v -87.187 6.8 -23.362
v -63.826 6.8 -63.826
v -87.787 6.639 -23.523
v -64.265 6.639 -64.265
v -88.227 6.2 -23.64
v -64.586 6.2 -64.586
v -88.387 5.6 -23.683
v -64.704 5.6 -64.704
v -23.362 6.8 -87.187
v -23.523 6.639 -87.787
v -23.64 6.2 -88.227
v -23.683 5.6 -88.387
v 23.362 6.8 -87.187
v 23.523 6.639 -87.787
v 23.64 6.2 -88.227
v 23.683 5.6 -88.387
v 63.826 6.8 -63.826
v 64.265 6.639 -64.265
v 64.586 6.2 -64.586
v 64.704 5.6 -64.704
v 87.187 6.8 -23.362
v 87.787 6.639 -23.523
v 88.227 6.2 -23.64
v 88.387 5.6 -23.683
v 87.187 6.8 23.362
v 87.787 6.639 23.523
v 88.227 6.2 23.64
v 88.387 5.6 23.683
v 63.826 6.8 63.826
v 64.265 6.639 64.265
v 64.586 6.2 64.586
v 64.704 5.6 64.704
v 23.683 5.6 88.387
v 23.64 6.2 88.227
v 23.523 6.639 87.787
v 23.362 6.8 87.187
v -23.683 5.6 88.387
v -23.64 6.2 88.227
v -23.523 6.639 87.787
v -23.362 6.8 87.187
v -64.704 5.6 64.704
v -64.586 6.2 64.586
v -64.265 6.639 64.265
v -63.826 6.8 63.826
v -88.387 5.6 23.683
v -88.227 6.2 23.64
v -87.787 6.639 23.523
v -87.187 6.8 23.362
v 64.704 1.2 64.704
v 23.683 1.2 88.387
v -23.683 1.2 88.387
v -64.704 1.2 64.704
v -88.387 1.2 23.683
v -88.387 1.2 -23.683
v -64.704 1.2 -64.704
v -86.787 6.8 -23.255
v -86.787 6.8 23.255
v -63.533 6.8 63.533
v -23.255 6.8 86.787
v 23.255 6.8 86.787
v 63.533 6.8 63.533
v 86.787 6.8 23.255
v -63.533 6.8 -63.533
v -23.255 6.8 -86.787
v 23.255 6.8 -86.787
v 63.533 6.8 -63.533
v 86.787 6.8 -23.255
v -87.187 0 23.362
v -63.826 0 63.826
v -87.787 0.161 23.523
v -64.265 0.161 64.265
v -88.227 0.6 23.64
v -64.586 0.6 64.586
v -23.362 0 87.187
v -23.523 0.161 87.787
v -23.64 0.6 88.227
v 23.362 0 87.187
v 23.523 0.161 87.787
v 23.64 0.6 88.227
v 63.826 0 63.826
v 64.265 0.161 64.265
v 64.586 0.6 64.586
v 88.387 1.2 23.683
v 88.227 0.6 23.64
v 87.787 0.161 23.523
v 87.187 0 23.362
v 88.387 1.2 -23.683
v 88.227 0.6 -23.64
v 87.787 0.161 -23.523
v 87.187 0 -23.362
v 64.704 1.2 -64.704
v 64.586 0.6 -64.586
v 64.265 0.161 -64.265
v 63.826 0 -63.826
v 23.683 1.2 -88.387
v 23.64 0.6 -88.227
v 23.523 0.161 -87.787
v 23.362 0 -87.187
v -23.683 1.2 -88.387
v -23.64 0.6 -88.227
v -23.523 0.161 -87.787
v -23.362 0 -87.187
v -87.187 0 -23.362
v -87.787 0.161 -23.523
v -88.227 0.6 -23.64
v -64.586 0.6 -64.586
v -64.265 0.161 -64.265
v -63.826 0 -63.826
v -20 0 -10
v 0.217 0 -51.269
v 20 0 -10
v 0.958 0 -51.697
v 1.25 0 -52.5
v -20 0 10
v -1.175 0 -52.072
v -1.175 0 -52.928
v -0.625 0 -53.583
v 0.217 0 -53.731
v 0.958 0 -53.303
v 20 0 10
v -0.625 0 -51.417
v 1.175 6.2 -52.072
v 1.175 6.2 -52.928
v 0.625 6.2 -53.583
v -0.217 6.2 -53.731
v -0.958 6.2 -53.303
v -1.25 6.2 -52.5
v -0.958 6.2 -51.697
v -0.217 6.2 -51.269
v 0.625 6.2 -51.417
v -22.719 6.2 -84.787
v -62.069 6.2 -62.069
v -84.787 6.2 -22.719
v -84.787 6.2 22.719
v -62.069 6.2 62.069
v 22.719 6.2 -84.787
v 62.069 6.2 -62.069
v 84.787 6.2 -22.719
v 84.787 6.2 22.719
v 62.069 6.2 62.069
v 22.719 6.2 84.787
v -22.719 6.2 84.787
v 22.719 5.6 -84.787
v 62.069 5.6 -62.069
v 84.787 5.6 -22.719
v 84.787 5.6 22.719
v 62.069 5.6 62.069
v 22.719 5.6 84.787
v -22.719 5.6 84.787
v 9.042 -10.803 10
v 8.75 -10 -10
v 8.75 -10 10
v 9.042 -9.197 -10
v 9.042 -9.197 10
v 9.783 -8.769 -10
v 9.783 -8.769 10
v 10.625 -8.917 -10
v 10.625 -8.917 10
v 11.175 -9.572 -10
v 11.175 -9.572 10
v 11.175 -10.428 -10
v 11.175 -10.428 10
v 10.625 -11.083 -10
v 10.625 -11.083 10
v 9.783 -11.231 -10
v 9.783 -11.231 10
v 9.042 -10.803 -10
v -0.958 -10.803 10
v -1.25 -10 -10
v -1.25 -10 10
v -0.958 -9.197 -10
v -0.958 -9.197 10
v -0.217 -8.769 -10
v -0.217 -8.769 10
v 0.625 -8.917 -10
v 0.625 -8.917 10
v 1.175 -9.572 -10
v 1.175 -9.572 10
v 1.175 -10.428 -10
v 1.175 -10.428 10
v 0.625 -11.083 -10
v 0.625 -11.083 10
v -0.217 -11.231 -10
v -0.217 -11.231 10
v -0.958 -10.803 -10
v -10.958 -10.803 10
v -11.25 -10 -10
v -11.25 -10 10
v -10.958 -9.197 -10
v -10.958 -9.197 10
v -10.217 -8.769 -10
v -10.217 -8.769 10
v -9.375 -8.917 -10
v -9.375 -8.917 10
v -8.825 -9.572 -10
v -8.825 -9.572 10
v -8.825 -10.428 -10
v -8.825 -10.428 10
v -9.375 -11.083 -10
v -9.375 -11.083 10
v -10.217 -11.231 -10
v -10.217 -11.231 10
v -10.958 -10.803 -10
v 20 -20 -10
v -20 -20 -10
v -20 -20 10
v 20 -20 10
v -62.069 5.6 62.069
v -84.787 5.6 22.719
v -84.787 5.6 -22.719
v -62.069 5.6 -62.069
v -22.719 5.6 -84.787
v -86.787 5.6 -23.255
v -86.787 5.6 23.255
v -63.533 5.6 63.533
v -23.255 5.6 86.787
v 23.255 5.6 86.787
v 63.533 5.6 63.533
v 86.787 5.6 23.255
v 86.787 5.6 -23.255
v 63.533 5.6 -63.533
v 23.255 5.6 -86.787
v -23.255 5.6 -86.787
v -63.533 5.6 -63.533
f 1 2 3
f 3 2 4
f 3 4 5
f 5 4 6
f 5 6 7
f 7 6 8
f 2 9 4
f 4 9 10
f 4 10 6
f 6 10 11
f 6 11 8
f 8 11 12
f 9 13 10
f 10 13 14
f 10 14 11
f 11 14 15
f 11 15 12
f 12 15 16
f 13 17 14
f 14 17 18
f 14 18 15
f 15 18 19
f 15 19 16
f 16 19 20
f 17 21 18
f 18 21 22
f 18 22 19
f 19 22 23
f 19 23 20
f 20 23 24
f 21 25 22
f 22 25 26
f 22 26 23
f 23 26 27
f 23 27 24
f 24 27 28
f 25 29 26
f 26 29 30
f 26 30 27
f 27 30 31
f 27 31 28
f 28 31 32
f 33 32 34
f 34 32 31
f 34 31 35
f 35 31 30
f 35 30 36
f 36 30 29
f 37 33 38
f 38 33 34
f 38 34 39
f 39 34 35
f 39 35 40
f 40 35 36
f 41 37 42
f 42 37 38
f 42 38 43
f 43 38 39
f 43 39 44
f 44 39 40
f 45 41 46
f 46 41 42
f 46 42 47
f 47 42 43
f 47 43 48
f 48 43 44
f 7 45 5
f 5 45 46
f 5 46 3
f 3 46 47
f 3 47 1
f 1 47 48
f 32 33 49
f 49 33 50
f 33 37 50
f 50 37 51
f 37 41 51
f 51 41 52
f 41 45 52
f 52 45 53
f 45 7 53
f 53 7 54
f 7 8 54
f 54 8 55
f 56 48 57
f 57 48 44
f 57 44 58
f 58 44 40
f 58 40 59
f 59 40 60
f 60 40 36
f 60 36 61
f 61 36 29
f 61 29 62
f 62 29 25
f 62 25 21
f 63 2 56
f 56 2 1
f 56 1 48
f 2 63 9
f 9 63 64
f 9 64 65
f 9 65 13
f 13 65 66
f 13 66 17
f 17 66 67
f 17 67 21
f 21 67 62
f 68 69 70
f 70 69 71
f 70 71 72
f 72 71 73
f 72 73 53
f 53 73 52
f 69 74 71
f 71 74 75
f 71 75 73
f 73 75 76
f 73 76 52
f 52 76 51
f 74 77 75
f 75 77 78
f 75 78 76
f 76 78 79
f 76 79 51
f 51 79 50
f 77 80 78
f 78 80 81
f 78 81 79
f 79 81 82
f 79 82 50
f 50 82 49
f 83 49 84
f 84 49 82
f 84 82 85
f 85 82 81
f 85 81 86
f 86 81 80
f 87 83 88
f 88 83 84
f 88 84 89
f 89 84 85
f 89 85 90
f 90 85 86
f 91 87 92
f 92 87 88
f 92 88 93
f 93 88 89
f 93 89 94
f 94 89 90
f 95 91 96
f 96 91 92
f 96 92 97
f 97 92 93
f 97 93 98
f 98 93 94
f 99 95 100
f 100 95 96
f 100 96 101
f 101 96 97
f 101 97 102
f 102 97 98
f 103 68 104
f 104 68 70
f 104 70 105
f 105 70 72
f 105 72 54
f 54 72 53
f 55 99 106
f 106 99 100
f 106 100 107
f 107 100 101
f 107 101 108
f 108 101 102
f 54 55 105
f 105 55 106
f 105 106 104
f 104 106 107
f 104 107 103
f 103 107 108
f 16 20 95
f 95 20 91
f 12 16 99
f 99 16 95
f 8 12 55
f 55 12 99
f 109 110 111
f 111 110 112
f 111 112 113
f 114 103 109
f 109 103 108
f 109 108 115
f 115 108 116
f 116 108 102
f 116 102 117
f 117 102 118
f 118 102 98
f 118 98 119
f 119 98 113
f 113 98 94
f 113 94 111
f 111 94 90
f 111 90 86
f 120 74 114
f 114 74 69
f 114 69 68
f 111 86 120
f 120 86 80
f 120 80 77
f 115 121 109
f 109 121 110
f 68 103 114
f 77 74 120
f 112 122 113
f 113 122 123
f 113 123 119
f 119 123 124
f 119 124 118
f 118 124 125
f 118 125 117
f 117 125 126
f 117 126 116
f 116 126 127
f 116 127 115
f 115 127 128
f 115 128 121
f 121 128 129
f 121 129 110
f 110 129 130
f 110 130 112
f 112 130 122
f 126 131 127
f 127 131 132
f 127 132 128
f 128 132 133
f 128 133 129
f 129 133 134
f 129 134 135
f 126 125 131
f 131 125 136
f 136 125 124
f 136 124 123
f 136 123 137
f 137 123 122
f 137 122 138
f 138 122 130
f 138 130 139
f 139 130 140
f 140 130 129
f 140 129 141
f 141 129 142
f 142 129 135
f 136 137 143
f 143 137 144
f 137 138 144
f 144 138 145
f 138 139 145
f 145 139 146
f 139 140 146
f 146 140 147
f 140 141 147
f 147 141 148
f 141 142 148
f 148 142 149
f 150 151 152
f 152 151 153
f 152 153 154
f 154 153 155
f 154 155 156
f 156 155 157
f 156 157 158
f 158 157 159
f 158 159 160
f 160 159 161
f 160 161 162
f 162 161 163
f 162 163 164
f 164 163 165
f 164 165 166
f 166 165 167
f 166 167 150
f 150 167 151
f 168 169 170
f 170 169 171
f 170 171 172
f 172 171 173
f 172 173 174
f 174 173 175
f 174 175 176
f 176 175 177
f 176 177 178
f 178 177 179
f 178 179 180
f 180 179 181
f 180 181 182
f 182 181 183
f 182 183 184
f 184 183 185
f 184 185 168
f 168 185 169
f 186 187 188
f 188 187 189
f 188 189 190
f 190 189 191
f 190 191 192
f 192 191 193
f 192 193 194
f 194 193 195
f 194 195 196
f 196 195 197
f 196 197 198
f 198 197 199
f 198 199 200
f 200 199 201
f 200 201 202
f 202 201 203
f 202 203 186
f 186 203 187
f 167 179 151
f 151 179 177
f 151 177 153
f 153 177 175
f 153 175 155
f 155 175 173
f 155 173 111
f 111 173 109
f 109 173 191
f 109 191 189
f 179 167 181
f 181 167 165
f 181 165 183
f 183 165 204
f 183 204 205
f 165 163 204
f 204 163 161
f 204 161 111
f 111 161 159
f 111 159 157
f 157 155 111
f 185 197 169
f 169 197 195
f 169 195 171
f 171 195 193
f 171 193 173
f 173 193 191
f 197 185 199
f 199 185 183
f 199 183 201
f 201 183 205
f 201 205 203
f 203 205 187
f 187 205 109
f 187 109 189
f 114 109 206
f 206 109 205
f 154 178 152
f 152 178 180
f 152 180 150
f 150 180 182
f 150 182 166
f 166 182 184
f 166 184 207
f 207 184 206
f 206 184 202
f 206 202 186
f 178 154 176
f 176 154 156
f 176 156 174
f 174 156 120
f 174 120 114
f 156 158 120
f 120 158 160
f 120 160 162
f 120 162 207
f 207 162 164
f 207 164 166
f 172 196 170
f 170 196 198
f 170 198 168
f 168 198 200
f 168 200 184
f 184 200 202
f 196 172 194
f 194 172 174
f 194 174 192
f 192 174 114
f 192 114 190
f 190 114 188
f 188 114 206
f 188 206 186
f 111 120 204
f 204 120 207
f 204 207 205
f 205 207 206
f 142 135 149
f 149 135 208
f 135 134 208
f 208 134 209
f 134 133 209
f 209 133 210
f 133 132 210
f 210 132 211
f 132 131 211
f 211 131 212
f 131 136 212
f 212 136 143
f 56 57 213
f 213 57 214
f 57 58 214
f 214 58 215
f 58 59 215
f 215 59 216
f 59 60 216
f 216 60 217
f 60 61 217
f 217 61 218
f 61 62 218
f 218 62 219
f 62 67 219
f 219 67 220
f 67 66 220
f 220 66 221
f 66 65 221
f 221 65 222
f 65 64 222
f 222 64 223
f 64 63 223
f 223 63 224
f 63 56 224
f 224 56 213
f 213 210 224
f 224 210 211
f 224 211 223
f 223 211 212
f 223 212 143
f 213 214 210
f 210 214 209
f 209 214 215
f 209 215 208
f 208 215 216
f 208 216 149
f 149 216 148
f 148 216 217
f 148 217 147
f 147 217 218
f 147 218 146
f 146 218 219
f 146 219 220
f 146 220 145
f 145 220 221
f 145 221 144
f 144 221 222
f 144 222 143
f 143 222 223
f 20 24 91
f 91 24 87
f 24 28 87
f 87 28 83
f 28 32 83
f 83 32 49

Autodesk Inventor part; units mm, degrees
ref_plane "YZ Plane" through (0, 0, 0) normal (1, 0, 0) x (0, 1, 0)
ref_plane "XZ Plane" through (0, 0, 0) normal (0, 1, 0) x (-1, 0, 0)
ref_plane "XY Plane" through (0, 0, 0) normal (0, 0, 1) x (1, 0, 0)
sketch "스케치1" plane through (0, 0, 0) normal (0, 1, 0) x (-1, 0, 0)
  line L0 (-62.3615, 62.3615) -> (-22.8259, 85.1874)
  line L1 (-22.8259, 85.1874) -> (22.8259, 85.1874)
  line L2 (22.8259, 85.1874) -> (62.3615, 62.3615)
  line L3 (62.3615, 62.3615) -> (85.1874, 22.8259)
  line L4 (85.1874, 22.8259) -> (85.1874, -22.8259)
  line L5 (85.1874, -22.8259) -> (62.3615, -62.3615)
  line L6 (62.3615, -62.3615) -> (22.8259, -85.1874)
  line L7 (22.8259, -85.1874) -> (-22.8259, -85.1874)
  line L8 (-22.8259, -85.1874) -> (-62.3615, -62.3615)
  line L9 (-62.3615, -62.3615) -> (-85.1874, -22.8259)
  line L10 (-85.1874, -22.8259) -> (-85.1874, 22.8259)
  line L11 (-85.1874, 22.8259) -> (-62.3615, 62.3615)
  line L12 (88.3874, -23.6833) -> (64.7041, -64.7041)
  line L13 (64.7041, -64.7041) -> (23.6833, -88.3874)
  line L14 (23.6833, -88.3874) -> (-23.6833, -88.3874)
  line L15 (-23.6833, -88.3874) -> (-64.7041, -64.7041)
  line L16 (-64.7041, -64.7041) -> (-88.3874, -23.6833)
  line L17 (-88.3874, -23.6833) -> (-88.3874, 23.6833)
  line L18 (-88.3874, 23.6833) -> (-64.7041, 64.7041)
  line L19 (-64.7041, 64.7041) -> (-23.6833, 88.3874)
  line L20 (-23.6833, 88.3874) -> (23.6833, 88.3874)
  line L21 (23.6833, 88.3874) -> (64.7041, 64.7041)
  line L22 (64.7041, 64.7041) -> (88.3874, 23.6833)
  line L23 (88.3874, 23.6833) -> (88.3874, -23.6833)
  point P0 (0, 0)
  point P1 (0, 0)
  point P2 (0, 0)
  dimension "d0" = 176.385
  dimension "d1" = 3.2
extrude "돌출1" add sketch "스케치1" along normal blind 6.8 contours L0 L1 L2 L3 L4 L5 L6 L7 L8 L9 L10 L11 | L12 L13 L14 L15 L16 L17 L18 L19 L20 L21 L22 L23
sketch "스케치2" plane through (0, 6.8, 0) normal (0, 1, 0) x (1, 0, 0)
  line L0 (-23.2546, 86.7874) -> (23.2546, 86.7874)
  line L1 (23.2546, 86.7874) -> (63.5328, 63.5328)
  line L2 (63.5328, 63.5328) -> (86.7874, 23.2546)
  line L3 (86.7874, 23.2546) -> (86.7874, -23.2546)
  line L4 (86.7874, -23.2546) -> (63.5328, -63.5328)
  line L5 (63.5328, -63.5328) -> (23.2546, -86.7874)
  line L6 (23.2546, -86.7874) -> (-23.2546, -86.7874)
  line L7 (-23.2546, -86.7874) -> (-63.5328, -63.5328)
  line L8 (-63.5328, -63.5328) -> (-86.7874, -23.2546)
  line L9 (-86.7874, -23.2546) -> (-86.7874, 23.2546)
  line L10 (-86.7874, 23.2546) -> (-63.5328, 63.5328)
  line L11 (-63.5328, 63.5328) -> (-23.2546, 86.7874)
  line L12 (-88.3874, 23.6833) -> (-88.3874, -23.6833) projected
  line L13 (22.7187, -84.7874) -> (-22.7187, -84.7874)
  line L14 (-22.7187, -84.7874) -> (-62.0687, -62.0687)
  line L15 (-62.0687, -62.0687) -> (-84.7874, -22.7187)
  line L16 (-84.7874, -22.7187) -> (-84.7874, 22.7187)
  line L17 (-84.7874, 22.7187) -> (-62.0687, 62.0687)
  line L18 (-62.0687, 62.0687) -> (-22.7187, 84.7874)
  line L19 (-22.7187, 84.7874) -> (22.7187, 84.7874)
  line L20 (22.7187, 84.7874) -> (62.0687, 62.0687)
  line L21 (62.0687, 62.0687) -> (84.7874, 22.7187)
  line L22 (84.7874, 22.7187) -> (84.7874, -22.7187)
  line L23 (84.7874, -22.7187) -> (62.0687, -62.0687)
  line L24 (62.0687, -62.0687) -> (22.7187, -84.7874)
  point P0 (0, 0)
  point P1 (0, 0)
  point P2 (0, 0)
  dimension "d4" = 1.6
  dimension "d5" = 2
extrude "돌출2" cut sketch "스케치2" against normal blind 1.2
sketch "스케치3" plane through (0, 0, 0) normal (0, -1, 0) x (1, 0, 0)
  line L0 (-20, -10) -> (20, -10)
  line L1 (20, -10) -> (20, 10)
  line L2 (20, 10) -> (-20, 10)
  line L3 (-20, 10) -> (-20, -10)
  line L4 (-20, -10) -> (20, 10) construction
  line L5 (20, -10) -> (-20, 10) construction
  point P0 (0, 0)
  point P1 (0, 0)
  point P2 (-20, 0)
  dimension "d8" = 40
  dimension "d9" = 20
extrude "돌출3" add sketch "스케치3" along normal blind 20
sketch "스케치4" plane through (20, 0, -10) normal (0, 0, -1) x (-1, 0, 0)
  circle A0 centre (10, -10) radius 1.25
  line L0 (-3.6833, 0) -> (43.6833, 0) projected
  line L1 (40, -20) -> (0, -20) projected
  line L2 (20, -20) -> (20, 0)
  circle A1 centre (20, -10) radius 1.25
  circle A2 centre (30, -10) radius 1.25
  dimension "d13" = 2.5
  dimension "d14" = 10
  dimension "d15" = 10
  dimension "d16" = 2.5
extrude "돌출4" cut sketch "스케치4" against normal blind 20
sketch "스케치5" plane through (0, 6.8, 0) normal (0, 1, 0) x (1, 0, 0)
  line L0 (-62.0687, -62.0687) -> (-22.7187, -84.7874) projected
  line L1 (-22.7187, -84.7874) -> (22.7187, -84.7874) projected
  line L2 (22.7187, -84.7874) -> (62.0687, -62.0687) projected
  line L3 (62.0687, -62.0687) -> (84.7874, -22.7187) projected
  line L4 (84.7874, -22.7187) -> (84.7874, 22.7187) projected
  line L5 (84.7874, 22.7187) -> (62.0687, 62.0687) projected
  line L6 (62.0687, 62.0687) -> (22.7187, 84.7874) projected
  line L7 (22.7187, 84.7874) -> (-22.7187, 84.7874) projected
  line L8 (-22.7187, 84.7874) -> (-62.0687, 62.0687) projected
  line L9 (-62.0687, 62.0687) -> (-84.7874, 22.7187) projected
  line L10 (-84.7874, 22.7187) -> (-84.7874, -22.7187) projected
  line L11 (-84.7874, -22.7187) -> (-62.0687, -62.0687) projected
  point P0 (0, 0)
extrude "돌출5" cut sketch "스케치5" against normal blind 0.6
sketch "스케치6" plane through (0, 0, 0) normal (0, -1, 0) x (1, 0, 0)
  circle A0 centre (0, -52.5) radius 1.25
  line L0 (-20, -10) -> (20, -10) projected
  point P0 (0, 0)
  point P1 (0, -10)
  dimension "d22" = 2.5
  dimension "d23" = 52.5
extrude "돌출6" cut sketch "스케치6" against normal up to surface (6.2 mm away)
fillet "모깎기1" radius 1.2 24 edges at (76.5457, 0, 44.1937) (76.5457, 6.8, 44.1937) (88.3874, 6.8, 0) (88.3874, 0, 0) (76.5457, 6.8, -44.1937) (76.5457, 0, -44.1937) (44.1937, 6.8, -76.5457) (44.1937, 0, -76.5457) (0, 0, -88.3874) (0, 6.8, -88.3874) (-44.1937, 6.8, -76.5457) (-44.1937, 0, -76.5457) (-76.5457, 0, -44.1937) (-76.5457, 6.8, -44.1937) (-88.3874, 0, 0) (-88.3874, 6.8, 0) (-76.5457, 0, 44.1937) (-76.5457, 6.8, 44.1937) (-44.1937, 0, 76.5457) (-44.1937, 6.8, 76.5457) (0, 0, 88.3874) (0, 6.8, 88.3874) (44.1937, 0, 76.5457) (44.1937, 6.8, 76.5457)
properties part number "(x2)_POSPA_Large_Bottom"
